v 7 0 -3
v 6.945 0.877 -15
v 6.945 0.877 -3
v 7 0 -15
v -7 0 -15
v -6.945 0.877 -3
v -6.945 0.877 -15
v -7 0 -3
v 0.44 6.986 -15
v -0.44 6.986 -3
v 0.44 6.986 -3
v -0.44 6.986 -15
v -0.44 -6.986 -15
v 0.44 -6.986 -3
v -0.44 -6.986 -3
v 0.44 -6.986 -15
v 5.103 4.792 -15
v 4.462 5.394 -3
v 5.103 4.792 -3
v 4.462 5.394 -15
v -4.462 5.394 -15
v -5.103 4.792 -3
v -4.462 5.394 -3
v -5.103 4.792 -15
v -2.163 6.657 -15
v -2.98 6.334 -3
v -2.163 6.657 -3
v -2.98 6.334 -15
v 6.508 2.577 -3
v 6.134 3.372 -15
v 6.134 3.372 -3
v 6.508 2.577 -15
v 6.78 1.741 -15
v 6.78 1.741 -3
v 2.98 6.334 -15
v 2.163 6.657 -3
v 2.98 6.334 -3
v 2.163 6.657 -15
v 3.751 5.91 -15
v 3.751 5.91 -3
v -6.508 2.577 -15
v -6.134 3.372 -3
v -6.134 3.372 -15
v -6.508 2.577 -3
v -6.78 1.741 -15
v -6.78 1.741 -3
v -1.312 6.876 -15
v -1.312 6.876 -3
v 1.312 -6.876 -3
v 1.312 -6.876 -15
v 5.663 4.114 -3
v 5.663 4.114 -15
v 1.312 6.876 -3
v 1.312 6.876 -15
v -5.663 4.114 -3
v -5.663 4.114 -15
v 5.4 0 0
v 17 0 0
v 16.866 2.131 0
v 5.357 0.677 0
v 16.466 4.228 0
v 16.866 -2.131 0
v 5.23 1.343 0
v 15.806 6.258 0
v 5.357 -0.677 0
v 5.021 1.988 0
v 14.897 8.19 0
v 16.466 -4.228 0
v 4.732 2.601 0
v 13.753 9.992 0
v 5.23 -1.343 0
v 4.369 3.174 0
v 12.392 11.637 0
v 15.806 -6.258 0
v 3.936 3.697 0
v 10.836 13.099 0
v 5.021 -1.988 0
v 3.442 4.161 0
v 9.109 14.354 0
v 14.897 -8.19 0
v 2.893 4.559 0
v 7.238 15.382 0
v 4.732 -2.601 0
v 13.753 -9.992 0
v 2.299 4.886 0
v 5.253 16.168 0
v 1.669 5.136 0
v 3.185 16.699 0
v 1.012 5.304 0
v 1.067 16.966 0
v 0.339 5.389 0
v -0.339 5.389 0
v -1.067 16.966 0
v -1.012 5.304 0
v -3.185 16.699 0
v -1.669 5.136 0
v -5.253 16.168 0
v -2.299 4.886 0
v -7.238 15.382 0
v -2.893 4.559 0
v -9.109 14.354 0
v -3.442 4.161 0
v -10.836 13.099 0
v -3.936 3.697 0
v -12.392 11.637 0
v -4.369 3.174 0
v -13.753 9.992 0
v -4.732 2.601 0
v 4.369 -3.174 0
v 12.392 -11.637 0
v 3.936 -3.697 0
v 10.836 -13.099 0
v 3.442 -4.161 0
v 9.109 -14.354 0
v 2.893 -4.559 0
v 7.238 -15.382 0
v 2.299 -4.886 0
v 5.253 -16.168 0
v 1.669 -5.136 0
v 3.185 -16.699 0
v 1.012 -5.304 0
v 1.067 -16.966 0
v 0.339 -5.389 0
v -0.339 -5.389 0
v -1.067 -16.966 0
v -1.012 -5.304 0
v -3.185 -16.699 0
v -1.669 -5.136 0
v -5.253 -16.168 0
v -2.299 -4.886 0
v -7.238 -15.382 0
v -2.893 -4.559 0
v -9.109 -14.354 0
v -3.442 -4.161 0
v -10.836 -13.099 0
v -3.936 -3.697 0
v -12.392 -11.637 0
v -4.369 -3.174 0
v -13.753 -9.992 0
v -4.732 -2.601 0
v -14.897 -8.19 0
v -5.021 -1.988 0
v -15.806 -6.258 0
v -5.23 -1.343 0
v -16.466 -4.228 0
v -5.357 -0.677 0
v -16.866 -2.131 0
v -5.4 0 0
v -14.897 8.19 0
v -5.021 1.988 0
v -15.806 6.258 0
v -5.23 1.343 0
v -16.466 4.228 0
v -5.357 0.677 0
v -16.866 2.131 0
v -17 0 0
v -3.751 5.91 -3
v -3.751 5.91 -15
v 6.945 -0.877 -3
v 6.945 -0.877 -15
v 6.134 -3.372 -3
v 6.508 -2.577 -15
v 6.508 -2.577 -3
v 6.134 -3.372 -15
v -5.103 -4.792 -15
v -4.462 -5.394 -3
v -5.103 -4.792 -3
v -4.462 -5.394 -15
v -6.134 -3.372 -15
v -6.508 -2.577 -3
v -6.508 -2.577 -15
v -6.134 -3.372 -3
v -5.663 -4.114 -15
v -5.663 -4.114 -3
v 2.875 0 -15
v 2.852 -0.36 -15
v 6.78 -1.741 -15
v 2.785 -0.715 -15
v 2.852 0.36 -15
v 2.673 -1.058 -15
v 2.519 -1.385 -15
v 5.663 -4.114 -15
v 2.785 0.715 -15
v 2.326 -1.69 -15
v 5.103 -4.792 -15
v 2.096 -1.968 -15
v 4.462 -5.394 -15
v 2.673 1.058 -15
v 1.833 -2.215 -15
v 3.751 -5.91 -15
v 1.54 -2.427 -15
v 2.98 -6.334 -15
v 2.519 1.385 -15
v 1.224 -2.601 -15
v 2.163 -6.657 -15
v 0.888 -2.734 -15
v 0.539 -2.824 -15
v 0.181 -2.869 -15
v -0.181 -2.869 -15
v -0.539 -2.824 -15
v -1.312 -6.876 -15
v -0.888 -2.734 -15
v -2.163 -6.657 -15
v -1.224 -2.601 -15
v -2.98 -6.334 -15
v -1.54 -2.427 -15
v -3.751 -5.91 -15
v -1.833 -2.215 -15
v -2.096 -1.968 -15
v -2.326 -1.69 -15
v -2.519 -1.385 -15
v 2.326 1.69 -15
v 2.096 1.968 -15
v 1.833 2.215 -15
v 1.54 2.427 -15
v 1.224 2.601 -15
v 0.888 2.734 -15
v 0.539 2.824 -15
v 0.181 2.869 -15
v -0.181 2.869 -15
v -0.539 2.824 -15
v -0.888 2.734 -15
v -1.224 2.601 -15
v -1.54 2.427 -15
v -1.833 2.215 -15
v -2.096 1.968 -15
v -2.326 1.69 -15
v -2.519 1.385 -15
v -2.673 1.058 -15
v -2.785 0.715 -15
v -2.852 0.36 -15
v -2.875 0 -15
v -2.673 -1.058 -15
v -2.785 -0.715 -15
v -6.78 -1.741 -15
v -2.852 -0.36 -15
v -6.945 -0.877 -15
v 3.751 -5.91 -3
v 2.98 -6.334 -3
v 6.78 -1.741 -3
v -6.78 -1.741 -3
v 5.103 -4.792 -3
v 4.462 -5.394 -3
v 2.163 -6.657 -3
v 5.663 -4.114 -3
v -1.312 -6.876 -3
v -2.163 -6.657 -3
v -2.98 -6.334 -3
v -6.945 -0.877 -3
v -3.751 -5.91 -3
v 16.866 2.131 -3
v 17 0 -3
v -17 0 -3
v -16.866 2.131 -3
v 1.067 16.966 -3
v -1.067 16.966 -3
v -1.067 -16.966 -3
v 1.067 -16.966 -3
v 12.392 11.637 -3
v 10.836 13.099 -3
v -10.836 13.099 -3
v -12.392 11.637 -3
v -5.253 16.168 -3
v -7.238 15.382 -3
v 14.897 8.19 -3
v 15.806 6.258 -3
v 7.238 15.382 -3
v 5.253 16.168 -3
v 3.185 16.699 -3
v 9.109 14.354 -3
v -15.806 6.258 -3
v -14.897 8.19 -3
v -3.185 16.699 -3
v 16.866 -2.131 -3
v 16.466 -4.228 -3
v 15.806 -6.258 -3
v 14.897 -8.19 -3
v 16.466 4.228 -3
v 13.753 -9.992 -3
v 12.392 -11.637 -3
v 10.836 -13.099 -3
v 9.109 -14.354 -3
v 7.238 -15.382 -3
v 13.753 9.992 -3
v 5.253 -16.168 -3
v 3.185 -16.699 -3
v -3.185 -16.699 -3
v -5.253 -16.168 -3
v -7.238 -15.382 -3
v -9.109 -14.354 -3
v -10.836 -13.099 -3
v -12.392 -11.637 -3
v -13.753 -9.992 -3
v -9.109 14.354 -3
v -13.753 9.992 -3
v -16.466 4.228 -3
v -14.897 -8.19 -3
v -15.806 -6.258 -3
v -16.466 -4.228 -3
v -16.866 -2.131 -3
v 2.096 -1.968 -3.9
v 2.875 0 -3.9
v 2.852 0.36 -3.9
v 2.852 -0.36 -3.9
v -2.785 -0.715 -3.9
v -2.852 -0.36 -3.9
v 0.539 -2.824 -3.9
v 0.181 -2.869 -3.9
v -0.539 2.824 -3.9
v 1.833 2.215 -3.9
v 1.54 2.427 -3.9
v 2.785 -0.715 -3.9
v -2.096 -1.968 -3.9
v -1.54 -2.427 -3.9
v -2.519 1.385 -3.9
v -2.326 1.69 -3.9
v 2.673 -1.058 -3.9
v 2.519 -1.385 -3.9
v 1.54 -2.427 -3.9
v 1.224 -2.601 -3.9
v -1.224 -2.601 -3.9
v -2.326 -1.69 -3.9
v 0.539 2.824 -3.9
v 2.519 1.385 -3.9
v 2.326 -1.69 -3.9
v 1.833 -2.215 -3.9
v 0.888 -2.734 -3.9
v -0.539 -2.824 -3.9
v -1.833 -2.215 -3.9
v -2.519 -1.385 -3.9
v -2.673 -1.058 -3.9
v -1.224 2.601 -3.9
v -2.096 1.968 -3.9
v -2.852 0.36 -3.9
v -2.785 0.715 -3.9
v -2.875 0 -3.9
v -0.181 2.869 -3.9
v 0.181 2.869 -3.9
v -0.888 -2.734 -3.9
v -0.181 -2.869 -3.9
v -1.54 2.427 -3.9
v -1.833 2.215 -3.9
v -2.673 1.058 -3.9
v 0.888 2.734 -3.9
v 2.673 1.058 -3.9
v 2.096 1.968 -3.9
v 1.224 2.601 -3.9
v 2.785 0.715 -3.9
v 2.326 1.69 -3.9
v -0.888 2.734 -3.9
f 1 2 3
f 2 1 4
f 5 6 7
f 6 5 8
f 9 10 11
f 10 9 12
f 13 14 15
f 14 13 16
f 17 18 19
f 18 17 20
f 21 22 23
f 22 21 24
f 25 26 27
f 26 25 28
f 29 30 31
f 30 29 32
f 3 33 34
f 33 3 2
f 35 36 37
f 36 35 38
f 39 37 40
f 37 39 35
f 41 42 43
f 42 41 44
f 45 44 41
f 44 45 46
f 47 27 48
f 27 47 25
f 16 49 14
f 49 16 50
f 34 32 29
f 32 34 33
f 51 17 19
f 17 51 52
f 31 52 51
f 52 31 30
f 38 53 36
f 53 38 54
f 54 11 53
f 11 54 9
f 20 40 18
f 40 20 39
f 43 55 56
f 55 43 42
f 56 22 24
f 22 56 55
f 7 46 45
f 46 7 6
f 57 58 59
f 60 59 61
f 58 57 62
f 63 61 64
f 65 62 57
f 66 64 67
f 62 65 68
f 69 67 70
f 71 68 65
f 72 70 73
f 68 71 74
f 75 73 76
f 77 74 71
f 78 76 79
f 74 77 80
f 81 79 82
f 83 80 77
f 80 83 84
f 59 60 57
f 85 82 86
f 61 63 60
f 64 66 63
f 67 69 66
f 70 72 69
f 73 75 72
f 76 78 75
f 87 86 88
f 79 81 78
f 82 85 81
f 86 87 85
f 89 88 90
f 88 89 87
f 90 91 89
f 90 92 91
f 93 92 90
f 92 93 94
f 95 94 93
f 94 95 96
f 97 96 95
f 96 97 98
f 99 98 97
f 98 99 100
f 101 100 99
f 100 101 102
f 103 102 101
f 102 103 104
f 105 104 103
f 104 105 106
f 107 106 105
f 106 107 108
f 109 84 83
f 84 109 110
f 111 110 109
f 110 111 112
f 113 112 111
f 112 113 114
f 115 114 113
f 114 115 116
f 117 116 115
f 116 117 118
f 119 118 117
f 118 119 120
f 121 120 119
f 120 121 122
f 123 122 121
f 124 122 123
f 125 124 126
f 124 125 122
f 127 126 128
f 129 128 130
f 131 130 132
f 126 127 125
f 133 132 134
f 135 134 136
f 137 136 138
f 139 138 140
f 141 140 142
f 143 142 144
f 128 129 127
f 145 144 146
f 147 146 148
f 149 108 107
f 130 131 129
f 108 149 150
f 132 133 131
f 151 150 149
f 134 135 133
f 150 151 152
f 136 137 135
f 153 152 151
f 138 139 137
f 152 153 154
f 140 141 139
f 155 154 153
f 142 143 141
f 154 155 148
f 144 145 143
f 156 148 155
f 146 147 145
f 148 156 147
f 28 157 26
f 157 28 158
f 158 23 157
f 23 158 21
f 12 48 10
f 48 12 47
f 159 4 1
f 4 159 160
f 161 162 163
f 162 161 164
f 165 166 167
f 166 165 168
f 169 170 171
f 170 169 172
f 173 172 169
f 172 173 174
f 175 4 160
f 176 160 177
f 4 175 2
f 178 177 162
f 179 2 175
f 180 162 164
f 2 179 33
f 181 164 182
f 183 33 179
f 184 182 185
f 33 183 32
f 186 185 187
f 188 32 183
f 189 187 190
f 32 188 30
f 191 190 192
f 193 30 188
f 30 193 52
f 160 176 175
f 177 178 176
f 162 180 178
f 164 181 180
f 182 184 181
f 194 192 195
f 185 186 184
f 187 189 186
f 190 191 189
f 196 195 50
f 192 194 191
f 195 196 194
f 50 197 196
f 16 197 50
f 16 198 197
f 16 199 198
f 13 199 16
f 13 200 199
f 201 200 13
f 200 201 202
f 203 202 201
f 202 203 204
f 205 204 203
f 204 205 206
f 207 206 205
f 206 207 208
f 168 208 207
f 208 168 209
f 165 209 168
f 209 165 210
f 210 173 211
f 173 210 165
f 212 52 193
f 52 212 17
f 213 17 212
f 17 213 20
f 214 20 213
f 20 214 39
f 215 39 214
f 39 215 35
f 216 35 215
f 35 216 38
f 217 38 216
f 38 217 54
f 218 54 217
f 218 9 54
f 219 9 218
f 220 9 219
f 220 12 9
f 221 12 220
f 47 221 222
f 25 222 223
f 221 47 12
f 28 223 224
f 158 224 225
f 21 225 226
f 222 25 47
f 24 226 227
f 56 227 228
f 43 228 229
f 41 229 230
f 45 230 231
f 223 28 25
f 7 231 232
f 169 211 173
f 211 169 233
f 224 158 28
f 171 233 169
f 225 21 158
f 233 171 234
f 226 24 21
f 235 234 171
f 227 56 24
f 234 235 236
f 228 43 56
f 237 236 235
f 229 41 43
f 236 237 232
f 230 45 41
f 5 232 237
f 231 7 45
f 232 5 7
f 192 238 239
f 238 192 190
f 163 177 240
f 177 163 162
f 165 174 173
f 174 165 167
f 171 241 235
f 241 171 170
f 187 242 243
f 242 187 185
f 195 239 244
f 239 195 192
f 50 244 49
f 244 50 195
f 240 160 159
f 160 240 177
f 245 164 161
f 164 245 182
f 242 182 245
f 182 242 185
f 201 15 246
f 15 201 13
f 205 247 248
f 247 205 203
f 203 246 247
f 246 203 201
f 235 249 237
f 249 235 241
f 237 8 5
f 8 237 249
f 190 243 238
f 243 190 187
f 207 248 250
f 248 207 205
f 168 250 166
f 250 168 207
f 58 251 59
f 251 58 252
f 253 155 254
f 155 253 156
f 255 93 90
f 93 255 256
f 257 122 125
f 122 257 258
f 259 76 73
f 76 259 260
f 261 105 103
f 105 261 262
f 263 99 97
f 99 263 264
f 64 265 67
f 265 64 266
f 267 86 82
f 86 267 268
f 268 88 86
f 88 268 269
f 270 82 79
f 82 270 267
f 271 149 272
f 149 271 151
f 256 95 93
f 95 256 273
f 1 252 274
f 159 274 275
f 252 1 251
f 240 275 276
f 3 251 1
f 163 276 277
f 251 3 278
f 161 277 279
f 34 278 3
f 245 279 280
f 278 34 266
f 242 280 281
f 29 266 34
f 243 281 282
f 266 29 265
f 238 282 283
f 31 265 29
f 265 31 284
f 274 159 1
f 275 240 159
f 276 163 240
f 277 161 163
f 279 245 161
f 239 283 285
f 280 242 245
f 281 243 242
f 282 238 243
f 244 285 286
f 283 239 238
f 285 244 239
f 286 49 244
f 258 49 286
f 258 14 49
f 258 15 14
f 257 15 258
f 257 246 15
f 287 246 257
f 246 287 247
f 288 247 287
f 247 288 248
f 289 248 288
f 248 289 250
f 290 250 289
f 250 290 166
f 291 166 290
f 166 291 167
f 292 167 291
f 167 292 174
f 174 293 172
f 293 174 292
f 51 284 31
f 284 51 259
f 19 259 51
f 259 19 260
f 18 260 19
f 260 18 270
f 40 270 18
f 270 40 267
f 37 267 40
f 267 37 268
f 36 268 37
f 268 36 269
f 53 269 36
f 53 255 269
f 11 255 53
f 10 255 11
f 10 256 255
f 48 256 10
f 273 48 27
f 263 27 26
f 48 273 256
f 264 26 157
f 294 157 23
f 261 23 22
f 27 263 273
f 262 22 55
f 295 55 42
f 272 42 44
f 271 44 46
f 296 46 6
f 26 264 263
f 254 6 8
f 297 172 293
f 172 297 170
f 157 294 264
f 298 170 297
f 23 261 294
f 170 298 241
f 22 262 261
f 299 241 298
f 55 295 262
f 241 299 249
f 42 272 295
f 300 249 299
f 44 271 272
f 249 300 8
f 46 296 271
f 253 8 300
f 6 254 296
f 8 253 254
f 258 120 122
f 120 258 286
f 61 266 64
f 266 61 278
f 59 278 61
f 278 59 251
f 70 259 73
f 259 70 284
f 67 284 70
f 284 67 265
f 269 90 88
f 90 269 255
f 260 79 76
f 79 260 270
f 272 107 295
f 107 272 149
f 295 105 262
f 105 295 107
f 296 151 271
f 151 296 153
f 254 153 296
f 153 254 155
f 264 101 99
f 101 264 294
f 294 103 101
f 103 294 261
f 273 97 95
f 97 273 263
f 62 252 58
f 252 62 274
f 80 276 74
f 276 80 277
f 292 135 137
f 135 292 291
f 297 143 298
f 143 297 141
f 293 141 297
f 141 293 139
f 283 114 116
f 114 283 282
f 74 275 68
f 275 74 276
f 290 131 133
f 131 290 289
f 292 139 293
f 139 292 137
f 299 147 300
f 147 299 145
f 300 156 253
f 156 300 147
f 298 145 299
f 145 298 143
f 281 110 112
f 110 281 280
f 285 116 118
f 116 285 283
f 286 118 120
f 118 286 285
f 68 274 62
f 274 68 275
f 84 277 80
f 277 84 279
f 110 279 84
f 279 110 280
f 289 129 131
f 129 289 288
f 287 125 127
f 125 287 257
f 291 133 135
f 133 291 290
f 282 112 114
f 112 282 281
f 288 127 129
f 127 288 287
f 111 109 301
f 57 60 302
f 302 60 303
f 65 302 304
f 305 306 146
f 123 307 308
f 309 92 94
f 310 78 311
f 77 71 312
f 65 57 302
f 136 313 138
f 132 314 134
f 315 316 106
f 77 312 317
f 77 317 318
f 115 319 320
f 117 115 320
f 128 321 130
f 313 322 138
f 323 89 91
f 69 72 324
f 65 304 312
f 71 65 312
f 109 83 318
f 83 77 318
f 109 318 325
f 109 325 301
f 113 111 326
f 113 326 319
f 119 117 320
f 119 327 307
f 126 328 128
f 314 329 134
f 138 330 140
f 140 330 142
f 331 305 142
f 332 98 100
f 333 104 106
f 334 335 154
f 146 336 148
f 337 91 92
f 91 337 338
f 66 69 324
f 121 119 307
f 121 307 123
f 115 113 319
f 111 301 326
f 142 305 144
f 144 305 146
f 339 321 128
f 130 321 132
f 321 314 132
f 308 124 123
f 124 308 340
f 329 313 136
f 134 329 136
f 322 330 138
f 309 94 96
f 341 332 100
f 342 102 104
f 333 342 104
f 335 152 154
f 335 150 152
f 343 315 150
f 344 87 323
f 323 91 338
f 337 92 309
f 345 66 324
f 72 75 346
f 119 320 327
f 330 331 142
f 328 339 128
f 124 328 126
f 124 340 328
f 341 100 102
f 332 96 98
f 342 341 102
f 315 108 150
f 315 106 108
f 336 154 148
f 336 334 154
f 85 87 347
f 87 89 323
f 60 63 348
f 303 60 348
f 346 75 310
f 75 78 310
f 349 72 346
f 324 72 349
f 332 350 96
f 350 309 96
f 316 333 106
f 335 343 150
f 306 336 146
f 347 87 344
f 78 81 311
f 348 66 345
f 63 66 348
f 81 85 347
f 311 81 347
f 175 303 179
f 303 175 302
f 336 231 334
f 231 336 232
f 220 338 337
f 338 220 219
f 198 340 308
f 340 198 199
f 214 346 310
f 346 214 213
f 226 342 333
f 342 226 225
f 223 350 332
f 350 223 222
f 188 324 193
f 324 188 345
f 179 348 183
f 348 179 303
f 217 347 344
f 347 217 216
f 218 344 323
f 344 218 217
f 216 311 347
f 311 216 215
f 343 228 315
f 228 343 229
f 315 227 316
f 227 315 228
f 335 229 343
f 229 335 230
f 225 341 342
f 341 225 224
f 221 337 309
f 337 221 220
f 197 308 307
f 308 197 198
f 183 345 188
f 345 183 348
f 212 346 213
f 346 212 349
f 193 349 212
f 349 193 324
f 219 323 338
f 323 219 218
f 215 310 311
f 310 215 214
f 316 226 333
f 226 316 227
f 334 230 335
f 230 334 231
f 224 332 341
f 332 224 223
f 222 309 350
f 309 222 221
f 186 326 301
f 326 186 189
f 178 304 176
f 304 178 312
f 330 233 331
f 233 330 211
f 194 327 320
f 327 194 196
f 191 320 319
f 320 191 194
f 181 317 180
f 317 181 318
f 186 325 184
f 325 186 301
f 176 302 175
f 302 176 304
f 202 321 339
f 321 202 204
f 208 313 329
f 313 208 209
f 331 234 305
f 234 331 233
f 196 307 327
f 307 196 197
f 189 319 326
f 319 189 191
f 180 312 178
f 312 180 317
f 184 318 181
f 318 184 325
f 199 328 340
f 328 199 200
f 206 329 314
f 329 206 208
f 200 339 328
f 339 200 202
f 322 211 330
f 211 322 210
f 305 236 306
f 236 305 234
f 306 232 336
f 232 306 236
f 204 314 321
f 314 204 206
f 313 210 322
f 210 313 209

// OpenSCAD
$fn = 50;


difference() {
	union() {
		translate(v = [0, 0, -15.0000000000]) {
			cylinder(h = 15, r = 7.0000000000);
		}
		translate(v = [0, 0, -3.0000000000]) {
			cylinder(h = 3, r = 17.0000000000);
		}
	}
	union() {
		translate(v = [0, 0, 0]) {
			rotate(a = [0, 0, 0]) {
				difference() {
					union() {
						#translate(v = [0, 0, -15.0000000000]) {
							cylinder(h = 15, r = 2.6000000000);
						}
						#translate(v = [0, 0, -3.9000000000]) {
							cylinder(h = 3.9000000000, r1 = 2.8750000000, r2 = 5.4000000000);
						}
						#translate(v = [0, 0, -15.0000000000]) {
							cylinder(h = 15, r = 2.8750000000);
						}
						#translate(v = [0, 0, -15.0000000000]) {
							cylinder(h = 15, r = 2.6000000000);
						}
					}
					union();
				}
			}
		}
	}
}
